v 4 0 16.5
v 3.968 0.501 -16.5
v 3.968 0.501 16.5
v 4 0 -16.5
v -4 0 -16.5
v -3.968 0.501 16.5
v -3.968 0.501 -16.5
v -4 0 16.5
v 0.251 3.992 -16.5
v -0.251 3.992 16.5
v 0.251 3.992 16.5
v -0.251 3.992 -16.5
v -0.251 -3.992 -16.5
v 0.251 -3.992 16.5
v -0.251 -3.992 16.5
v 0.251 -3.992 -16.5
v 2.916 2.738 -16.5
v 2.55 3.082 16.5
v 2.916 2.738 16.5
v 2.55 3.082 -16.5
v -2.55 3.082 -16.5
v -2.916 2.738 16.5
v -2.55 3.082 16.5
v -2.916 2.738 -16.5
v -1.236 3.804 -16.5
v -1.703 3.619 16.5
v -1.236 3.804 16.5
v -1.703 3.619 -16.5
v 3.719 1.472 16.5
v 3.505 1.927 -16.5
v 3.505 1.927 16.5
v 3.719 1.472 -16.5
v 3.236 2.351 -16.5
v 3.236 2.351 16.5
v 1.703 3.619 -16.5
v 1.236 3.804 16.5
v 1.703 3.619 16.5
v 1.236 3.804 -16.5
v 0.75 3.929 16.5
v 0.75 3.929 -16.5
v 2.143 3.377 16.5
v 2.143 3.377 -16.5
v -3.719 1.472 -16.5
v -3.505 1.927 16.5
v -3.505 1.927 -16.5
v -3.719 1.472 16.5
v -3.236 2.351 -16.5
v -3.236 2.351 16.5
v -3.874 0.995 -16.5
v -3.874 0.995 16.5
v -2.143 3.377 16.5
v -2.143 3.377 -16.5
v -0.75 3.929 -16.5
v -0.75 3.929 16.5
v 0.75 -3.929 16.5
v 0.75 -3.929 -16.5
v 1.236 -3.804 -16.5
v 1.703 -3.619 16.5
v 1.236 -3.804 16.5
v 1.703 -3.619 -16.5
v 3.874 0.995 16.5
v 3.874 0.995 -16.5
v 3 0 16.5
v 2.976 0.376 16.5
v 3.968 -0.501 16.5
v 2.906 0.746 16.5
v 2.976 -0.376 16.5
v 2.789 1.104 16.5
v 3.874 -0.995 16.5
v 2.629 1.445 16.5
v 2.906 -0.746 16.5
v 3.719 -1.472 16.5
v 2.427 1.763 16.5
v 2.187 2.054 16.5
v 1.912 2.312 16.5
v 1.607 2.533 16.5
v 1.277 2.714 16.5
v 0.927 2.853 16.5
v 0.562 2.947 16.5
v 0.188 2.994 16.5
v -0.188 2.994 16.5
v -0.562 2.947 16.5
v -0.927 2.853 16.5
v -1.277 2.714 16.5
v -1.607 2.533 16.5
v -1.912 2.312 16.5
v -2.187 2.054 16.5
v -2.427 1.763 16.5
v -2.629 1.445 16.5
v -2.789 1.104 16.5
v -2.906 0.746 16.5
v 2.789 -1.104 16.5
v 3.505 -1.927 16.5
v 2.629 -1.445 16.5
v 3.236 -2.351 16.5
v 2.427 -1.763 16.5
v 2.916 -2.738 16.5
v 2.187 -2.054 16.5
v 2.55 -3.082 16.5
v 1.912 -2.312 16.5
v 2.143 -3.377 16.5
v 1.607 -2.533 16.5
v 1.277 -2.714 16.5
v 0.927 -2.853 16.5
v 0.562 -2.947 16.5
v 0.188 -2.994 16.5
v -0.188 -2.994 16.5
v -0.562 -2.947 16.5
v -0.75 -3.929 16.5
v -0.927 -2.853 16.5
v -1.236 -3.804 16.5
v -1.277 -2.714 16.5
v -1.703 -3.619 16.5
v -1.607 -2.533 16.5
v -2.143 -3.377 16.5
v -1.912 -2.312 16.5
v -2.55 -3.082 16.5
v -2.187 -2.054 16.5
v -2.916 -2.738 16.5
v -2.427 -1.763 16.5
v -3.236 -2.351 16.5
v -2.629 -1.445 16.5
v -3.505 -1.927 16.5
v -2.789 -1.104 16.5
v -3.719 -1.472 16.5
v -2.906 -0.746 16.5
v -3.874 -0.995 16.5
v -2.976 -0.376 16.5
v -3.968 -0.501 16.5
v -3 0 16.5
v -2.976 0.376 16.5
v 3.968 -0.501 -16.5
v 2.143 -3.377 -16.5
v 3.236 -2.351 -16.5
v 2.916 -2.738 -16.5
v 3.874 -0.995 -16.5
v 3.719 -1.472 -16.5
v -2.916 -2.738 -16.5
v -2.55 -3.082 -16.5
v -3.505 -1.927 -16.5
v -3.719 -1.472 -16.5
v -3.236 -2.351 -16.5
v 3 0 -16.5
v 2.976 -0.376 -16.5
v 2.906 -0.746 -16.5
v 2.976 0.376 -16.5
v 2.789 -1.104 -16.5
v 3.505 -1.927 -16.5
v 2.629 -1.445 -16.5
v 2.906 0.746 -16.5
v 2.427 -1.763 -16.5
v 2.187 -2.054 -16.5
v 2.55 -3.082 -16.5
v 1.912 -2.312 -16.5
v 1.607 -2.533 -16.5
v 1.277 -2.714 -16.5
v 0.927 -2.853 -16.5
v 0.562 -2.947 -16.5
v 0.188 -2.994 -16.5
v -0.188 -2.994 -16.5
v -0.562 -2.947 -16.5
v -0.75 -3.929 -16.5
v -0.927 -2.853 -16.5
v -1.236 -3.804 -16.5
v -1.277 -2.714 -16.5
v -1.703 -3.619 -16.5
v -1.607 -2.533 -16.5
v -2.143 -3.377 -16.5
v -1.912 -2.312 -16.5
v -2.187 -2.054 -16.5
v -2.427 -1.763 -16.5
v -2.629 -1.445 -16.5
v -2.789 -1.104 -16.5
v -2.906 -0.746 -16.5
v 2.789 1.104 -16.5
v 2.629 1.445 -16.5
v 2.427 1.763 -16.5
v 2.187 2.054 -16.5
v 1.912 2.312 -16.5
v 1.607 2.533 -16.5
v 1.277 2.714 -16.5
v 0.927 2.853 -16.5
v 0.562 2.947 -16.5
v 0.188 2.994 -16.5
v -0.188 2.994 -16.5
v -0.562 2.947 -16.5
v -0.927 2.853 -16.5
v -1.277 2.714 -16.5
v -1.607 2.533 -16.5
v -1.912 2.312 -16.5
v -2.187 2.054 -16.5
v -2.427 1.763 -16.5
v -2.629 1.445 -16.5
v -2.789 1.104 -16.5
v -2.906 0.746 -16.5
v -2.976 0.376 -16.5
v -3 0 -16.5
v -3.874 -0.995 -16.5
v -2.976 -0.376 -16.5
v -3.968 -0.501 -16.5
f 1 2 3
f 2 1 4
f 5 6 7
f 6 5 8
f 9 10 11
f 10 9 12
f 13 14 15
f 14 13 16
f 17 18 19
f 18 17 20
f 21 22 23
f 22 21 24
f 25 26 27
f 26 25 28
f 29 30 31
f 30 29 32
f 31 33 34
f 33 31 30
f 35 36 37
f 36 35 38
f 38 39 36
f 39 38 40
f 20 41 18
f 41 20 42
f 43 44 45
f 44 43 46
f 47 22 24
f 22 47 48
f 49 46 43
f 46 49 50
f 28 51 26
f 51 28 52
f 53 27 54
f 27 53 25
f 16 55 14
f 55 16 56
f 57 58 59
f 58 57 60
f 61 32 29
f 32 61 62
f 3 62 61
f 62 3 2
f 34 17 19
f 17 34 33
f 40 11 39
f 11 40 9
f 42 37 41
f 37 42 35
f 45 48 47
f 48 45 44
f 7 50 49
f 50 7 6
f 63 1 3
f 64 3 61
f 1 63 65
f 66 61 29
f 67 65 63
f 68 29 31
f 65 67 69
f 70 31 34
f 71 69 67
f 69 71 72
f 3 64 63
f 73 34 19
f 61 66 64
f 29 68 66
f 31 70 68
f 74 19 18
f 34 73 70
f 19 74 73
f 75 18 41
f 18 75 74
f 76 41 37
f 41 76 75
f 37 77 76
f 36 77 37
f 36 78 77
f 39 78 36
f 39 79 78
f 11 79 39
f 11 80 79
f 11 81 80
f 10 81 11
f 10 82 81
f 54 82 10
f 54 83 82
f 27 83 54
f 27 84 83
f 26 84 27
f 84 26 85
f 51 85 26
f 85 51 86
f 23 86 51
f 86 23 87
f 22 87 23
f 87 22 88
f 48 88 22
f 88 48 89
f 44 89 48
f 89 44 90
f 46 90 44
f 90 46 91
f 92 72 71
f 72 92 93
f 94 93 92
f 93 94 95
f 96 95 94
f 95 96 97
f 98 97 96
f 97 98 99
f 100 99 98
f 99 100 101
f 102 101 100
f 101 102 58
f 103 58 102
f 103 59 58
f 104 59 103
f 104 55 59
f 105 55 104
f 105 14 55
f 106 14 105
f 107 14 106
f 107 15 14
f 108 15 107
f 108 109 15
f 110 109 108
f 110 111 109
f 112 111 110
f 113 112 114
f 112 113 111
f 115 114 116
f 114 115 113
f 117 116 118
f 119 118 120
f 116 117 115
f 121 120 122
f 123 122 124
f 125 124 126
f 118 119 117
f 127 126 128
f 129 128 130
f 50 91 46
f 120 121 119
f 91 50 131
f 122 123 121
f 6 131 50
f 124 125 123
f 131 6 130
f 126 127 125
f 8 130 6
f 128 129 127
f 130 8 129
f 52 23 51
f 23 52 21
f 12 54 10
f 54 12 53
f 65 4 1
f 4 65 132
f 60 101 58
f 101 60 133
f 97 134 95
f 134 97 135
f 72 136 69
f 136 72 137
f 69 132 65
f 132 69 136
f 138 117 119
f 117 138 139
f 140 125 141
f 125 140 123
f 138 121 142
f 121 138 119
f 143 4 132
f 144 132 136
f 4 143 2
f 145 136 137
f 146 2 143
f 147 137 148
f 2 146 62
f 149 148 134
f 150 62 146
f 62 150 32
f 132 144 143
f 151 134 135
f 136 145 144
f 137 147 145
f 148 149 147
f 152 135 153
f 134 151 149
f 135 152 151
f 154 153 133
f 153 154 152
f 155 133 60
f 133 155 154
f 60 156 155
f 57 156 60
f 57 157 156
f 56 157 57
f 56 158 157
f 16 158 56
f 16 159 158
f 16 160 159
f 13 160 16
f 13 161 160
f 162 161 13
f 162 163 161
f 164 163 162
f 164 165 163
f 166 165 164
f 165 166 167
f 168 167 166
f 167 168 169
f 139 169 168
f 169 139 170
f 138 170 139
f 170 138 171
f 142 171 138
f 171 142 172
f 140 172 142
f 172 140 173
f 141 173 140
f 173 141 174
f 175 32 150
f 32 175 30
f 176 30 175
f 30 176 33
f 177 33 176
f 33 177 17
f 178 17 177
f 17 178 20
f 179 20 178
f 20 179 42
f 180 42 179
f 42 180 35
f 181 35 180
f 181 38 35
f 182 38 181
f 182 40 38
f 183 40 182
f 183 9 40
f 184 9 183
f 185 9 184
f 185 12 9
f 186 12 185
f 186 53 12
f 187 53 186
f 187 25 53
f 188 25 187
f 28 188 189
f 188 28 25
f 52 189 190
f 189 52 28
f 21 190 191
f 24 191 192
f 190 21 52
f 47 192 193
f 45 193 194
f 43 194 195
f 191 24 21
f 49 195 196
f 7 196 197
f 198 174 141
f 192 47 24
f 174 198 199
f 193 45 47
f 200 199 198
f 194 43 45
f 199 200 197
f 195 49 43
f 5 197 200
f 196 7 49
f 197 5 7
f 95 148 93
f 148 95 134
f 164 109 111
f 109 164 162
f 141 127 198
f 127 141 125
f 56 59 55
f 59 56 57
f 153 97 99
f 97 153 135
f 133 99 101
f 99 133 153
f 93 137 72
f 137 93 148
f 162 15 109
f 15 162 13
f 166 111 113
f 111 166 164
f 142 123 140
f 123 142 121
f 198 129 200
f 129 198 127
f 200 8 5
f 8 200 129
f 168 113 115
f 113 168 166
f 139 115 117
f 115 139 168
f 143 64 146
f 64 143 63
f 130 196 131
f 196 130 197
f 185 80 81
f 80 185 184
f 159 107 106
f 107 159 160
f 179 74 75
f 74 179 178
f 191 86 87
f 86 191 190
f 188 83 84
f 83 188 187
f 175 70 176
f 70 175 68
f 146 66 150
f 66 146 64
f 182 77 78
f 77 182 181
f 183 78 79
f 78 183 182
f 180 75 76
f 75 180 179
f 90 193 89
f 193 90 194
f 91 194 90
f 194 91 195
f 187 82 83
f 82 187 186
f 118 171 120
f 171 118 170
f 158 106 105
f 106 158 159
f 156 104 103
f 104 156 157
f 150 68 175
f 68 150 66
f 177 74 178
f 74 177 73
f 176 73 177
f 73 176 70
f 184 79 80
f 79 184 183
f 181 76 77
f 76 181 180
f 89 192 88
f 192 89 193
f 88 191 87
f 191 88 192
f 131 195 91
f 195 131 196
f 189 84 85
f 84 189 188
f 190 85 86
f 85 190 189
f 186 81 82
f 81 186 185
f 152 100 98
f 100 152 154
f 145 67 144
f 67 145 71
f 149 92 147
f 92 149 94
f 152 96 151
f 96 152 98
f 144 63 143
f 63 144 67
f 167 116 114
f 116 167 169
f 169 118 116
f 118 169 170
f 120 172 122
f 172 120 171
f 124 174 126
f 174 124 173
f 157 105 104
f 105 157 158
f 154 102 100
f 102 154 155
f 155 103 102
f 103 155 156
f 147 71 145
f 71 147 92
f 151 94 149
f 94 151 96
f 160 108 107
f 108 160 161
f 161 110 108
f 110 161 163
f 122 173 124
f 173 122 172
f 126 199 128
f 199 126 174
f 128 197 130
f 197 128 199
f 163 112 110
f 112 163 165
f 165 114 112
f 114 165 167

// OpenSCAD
$fn = 50;


difference() {
	union() {
		translate(v = [0, 0, -16.5000000000]) {
			cylinder(h = 33, r = 4.0000000000);
		}
	}
	union() {
		translate(v = [0, 0, -100.0000000000]) {
			cylinder(h = 200, r = 3);
		}
	}
}
